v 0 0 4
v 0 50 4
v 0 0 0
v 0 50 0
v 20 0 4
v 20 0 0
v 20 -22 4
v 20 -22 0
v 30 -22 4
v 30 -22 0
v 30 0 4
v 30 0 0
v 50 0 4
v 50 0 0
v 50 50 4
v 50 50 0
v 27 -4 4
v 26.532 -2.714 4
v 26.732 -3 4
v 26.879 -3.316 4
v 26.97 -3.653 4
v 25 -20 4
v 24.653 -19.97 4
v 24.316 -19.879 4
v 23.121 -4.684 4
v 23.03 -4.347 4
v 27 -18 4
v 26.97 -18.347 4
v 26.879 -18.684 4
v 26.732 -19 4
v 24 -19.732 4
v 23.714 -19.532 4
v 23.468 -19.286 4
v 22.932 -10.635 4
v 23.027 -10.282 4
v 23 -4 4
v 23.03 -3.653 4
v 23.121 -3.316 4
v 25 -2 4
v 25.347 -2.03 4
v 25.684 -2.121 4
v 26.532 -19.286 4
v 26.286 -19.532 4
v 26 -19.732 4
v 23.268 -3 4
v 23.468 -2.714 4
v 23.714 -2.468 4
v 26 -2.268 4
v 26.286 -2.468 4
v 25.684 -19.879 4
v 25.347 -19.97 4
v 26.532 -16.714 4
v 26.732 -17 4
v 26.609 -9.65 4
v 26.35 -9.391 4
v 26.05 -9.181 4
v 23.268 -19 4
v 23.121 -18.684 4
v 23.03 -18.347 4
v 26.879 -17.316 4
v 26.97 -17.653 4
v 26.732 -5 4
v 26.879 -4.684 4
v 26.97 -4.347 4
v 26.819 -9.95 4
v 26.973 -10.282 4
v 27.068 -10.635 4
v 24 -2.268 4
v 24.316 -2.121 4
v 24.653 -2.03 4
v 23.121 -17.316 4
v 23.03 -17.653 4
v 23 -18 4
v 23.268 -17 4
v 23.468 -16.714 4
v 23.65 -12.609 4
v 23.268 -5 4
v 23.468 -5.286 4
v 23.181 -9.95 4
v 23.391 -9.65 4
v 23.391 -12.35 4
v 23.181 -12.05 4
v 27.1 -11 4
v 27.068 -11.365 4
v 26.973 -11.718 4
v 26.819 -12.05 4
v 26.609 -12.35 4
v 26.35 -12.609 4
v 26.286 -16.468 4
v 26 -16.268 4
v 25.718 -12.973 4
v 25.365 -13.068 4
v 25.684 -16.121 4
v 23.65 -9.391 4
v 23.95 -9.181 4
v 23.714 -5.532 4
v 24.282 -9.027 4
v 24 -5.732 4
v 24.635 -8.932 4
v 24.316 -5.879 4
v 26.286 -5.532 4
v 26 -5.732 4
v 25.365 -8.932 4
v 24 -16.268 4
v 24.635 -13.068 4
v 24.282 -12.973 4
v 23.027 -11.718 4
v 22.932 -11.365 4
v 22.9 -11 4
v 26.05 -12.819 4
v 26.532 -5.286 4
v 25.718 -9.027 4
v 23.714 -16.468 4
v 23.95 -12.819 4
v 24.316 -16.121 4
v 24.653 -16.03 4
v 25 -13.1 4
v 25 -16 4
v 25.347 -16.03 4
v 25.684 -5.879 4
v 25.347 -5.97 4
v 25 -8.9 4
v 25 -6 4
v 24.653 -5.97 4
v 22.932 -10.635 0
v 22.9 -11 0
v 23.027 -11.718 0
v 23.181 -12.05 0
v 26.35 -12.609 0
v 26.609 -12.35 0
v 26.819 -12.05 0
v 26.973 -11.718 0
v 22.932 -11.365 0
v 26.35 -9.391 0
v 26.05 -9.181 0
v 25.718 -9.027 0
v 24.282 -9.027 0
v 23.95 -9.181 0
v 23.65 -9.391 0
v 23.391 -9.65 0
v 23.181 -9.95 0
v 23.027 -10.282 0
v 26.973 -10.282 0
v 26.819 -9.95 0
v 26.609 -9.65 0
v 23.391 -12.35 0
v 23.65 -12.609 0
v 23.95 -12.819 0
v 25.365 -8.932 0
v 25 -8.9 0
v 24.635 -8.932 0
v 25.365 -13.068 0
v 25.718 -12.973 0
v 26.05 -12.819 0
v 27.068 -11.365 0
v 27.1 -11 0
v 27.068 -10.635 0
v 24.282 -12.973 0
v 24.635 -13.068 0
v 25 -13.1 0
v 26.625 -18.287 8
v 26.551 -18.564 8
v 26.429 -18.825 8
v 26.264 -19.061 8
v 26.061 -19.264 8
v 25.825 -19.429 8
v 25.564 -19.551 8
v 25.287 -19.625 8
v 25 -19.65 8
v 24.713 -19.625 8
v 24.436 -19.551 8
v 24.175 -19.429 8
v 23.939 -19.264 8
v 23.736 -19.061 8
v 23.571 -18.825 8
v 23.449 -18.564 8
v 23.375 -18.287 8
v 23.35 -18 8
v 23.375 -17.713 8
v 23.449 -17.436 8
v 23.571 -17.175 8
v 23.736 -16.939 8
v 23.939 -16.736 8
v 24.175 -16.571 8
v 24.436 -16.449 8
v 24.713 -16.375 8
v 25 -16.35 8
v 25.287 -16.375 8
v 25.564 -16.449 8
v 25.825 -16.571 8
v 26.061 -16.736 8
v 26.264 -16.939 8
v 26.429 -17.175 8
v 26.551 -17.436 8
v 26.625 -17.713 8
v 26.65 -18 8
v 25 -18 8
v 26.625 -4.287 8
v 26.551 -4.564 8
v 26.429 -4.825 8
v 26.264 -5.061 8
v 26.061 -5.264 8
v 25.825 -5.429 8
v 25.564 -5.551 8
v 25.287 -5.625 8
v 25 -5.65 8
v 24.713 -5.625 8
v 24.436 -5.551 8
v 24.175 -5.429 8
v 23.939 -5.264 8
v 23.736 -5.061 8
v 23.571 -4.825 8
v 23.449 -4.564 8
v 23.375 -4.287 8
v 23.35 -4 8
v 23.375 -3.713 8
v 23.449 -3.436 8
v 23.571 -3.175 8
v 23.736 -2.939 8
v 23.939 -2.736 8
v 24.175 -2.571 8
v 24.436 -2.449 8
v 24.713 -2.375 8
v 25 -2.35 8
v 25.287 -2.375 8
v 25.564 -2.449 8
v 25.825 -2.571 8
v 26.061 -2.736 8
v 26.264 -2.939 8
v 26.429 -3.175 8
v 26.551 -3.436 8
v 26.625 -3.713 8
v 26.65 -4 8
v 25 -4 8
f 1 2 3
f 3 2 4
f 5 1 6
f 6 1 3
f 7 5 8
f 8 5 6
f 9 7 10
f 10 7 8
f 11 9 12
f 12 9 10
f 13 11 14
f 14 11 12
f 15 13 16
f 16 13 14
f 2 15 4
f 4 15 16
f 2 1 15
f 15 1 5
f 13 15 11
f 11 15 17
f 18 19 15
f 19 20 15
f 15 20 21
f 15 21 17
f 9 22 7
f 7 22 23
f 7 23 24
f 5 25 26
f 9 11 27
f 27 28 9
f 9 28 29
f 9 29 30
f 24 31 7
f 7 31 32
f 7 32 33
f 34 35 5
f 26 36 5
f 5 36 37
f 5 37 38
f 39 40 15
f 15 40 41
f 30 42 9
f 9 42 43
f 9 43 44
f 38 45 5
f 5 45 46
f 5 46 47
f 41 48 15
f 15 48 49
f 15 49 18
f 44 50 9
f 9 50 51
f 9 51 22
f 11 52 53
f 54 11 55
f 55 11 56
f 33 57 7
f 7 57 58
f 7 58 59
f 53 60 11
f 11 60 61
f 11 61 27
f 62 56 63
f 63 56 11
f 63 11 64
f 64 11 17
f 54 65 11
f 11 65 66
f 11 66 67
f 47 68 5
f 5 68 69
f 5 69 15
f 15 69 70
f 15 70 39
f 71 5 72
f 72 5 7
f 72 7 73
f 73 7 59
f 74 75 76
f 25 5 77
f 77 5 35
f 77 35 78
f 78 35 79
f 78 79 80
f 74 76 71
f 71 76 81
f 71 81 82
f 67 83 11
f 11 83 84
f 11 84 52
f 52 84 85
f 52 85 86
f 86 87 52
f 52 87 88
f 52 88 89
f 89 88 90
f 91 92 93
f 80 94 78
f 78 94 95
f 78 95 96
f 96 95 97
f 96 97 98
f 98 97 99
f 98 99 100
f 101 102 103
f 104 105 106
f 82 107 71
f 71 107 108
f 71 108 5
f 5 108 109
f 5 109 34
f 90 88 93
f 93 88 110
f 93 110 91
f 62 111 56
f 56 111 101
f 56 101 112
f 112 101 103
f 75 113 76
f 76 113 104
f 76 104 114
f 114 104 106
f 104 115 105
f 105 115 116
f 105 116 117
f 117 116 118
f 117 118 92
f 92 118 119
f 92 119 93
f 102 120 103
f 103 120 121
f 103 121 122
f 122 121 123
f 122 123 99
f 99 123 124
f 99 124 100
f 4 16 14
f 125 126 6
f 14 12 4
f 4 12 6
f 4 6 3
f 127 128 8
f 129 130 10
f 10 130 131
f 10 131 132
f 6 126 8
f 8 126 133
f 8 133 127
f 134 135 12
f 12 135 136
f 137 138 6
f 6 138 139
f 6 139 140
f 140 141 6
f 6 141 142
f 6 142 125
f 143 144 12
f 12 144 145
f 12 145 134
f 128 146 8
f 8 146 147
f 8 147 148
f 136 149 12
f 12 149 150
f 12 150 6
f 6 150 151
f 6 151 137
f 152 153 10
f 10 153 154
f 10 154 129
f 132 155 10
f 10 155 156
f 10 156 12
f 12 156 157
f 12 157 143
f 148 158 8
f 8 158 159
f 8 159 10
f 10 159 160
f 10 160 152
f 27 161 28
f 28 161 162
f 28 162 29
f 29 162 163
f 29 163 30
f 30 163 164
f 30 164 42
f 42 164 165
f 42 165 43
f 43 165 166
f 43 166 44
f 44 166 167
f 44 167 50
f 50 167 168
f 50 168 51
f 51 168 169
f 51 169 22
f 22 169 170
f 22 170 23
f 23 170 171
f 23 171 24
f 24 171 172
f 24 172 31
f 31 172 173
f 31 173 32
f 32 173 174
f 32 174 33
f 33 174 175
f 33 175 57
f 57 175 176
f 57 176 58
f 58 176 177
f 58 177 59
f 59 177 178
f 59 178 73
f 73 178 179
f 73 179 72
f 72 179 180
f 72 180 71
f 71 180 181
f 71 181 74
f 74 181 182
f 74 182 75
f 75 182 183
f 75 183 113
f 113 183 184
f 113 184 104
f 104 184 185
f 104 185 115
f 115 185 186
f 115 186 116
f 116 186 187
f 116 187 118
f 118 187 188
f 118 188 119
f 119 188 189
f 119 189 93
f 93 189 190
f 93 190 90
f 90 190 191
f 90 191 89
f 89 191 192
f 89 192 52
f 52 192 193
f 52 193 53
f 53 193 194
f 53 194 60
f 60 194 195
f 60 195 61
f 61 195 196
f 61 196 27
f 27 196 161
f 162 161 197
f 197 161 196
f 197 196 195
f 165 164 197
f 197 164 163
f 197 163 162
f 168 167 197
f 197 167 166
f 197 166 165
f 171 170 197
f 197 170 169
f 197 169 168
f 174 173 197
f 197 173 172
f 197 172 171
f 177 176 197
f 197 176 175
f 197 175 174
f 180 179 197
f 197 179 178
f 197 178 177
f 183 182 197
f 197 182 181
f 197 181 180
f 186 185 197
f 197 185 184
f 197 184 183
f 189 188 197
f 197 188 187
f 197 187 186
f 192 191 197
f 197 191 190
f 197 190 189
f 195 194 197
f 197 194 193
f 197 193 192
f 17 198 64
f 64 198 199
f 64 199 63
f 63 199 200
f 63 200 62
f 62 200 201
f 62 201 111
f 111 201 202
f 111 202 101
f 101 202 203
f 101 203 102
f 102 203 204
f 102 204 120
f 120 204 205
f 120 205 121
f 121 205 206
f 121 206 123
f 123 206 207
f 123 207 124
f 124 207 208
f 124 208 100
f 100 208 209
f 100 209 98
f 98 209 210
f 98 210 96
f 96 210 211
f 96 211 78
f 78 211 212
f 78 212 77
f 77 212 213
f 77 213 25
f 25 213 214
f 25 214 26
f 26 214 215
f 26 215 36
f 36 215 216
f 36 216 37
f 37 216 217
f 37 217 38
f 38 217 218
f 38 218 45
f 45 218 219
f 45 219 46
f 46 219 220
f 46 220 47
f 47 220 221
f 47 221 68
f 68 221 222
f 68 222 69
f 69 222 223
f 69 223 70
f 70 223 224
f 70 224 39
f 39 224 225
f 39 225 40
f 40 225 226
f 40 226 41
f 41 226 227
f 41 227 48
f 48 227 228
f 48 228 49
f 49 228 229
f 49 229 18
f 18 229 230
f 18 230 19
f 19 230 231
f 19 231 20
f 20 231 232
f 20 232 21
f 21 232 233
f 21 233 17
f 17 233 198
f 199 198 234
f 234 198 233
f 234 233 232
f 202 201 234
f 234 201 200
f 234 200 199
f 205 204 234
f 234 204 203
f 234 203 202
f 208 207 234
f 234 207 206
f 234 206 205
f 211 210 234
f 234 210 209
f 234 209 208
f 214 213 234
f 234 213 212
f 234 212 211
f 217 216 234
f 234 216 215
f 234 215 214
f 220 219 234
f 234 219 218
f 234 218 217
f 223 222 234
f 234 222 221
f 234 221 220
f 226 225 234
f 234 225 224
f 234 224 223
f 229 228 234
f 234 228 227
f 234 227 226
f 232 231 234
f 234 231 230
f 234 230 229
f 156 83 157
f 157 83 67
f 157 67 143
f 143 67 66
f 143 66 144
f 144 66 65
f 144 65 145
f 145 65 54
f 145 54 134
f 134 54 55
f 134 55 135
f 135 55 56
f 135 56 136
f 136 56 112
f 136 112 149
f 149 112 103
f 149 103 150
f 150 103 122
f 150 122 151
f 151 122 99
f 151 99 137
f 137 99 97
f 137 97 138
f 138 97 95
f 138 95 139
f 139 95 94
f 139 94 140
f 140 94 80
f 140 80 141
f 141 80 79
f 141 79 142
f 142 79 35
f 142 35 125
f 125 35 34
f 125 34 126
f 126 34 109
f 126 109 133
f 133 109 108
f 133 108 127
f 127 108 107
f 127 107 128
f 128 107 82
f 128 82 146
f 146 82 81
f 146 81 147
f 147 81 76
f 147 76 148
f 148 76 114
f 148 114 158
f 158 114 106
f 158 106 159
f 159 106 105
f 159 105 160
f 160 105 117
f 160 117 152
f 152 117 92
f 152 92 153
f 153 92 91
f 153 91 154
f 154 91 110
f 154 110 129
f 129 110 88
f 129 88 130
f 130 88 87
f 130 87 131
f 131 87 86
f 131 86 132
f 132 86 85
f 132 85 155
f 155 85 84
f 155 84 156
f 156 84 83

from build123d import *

# Parameters (mm, degrees)
BOSS_EXTRUDE1_DEPTH = 4
SKETCH2_R           = 2
BOSS_EXTRUDE2_DEPTH = 4
BOSS_EXTRUDE2_TAPER = 5
SKETCH3_R           = 2.1
CUT_EXTRUDE1_DEPTH  = 4


with BuildPart() as part:
    # Sketch1 → Boss-Extrude1 (new body)
    with BuildSketch(Plane.XY):
        Polygon((0, 0), (20, 0), (20, -22), (30, -22), (30, 0), (50, 0), (50, 50), (0, 50), align=None)
    extrude(amount=BOSS_EXTRUDE1_DEPTH)

    # Sketch2 → Boss-Extrude2 (add)
    with BuildSketch(Plane.XY.offset(4)):
        with Locations((25, -18)):
            Circle(SKETCH2_R)
        with Locations((25, -4)):
            Circle(SKETCH2_R)
    extrude(amount=BOSS_EXTRUDE2_DEPTH, taper=BOSS_EXTRUDE2_TAPER)

    # Sketch3 → Cut-Extrude1 (cut)
    with BuildSketch(Plane.XY.offset(4)):
        with Locations((25, -11)):
            Circle(SKETCH3_R)
    extrude(amount=-CUT_EXTRUDE1_DEPTH, mode=Mode.SUBTRACT)


solid = part.part
